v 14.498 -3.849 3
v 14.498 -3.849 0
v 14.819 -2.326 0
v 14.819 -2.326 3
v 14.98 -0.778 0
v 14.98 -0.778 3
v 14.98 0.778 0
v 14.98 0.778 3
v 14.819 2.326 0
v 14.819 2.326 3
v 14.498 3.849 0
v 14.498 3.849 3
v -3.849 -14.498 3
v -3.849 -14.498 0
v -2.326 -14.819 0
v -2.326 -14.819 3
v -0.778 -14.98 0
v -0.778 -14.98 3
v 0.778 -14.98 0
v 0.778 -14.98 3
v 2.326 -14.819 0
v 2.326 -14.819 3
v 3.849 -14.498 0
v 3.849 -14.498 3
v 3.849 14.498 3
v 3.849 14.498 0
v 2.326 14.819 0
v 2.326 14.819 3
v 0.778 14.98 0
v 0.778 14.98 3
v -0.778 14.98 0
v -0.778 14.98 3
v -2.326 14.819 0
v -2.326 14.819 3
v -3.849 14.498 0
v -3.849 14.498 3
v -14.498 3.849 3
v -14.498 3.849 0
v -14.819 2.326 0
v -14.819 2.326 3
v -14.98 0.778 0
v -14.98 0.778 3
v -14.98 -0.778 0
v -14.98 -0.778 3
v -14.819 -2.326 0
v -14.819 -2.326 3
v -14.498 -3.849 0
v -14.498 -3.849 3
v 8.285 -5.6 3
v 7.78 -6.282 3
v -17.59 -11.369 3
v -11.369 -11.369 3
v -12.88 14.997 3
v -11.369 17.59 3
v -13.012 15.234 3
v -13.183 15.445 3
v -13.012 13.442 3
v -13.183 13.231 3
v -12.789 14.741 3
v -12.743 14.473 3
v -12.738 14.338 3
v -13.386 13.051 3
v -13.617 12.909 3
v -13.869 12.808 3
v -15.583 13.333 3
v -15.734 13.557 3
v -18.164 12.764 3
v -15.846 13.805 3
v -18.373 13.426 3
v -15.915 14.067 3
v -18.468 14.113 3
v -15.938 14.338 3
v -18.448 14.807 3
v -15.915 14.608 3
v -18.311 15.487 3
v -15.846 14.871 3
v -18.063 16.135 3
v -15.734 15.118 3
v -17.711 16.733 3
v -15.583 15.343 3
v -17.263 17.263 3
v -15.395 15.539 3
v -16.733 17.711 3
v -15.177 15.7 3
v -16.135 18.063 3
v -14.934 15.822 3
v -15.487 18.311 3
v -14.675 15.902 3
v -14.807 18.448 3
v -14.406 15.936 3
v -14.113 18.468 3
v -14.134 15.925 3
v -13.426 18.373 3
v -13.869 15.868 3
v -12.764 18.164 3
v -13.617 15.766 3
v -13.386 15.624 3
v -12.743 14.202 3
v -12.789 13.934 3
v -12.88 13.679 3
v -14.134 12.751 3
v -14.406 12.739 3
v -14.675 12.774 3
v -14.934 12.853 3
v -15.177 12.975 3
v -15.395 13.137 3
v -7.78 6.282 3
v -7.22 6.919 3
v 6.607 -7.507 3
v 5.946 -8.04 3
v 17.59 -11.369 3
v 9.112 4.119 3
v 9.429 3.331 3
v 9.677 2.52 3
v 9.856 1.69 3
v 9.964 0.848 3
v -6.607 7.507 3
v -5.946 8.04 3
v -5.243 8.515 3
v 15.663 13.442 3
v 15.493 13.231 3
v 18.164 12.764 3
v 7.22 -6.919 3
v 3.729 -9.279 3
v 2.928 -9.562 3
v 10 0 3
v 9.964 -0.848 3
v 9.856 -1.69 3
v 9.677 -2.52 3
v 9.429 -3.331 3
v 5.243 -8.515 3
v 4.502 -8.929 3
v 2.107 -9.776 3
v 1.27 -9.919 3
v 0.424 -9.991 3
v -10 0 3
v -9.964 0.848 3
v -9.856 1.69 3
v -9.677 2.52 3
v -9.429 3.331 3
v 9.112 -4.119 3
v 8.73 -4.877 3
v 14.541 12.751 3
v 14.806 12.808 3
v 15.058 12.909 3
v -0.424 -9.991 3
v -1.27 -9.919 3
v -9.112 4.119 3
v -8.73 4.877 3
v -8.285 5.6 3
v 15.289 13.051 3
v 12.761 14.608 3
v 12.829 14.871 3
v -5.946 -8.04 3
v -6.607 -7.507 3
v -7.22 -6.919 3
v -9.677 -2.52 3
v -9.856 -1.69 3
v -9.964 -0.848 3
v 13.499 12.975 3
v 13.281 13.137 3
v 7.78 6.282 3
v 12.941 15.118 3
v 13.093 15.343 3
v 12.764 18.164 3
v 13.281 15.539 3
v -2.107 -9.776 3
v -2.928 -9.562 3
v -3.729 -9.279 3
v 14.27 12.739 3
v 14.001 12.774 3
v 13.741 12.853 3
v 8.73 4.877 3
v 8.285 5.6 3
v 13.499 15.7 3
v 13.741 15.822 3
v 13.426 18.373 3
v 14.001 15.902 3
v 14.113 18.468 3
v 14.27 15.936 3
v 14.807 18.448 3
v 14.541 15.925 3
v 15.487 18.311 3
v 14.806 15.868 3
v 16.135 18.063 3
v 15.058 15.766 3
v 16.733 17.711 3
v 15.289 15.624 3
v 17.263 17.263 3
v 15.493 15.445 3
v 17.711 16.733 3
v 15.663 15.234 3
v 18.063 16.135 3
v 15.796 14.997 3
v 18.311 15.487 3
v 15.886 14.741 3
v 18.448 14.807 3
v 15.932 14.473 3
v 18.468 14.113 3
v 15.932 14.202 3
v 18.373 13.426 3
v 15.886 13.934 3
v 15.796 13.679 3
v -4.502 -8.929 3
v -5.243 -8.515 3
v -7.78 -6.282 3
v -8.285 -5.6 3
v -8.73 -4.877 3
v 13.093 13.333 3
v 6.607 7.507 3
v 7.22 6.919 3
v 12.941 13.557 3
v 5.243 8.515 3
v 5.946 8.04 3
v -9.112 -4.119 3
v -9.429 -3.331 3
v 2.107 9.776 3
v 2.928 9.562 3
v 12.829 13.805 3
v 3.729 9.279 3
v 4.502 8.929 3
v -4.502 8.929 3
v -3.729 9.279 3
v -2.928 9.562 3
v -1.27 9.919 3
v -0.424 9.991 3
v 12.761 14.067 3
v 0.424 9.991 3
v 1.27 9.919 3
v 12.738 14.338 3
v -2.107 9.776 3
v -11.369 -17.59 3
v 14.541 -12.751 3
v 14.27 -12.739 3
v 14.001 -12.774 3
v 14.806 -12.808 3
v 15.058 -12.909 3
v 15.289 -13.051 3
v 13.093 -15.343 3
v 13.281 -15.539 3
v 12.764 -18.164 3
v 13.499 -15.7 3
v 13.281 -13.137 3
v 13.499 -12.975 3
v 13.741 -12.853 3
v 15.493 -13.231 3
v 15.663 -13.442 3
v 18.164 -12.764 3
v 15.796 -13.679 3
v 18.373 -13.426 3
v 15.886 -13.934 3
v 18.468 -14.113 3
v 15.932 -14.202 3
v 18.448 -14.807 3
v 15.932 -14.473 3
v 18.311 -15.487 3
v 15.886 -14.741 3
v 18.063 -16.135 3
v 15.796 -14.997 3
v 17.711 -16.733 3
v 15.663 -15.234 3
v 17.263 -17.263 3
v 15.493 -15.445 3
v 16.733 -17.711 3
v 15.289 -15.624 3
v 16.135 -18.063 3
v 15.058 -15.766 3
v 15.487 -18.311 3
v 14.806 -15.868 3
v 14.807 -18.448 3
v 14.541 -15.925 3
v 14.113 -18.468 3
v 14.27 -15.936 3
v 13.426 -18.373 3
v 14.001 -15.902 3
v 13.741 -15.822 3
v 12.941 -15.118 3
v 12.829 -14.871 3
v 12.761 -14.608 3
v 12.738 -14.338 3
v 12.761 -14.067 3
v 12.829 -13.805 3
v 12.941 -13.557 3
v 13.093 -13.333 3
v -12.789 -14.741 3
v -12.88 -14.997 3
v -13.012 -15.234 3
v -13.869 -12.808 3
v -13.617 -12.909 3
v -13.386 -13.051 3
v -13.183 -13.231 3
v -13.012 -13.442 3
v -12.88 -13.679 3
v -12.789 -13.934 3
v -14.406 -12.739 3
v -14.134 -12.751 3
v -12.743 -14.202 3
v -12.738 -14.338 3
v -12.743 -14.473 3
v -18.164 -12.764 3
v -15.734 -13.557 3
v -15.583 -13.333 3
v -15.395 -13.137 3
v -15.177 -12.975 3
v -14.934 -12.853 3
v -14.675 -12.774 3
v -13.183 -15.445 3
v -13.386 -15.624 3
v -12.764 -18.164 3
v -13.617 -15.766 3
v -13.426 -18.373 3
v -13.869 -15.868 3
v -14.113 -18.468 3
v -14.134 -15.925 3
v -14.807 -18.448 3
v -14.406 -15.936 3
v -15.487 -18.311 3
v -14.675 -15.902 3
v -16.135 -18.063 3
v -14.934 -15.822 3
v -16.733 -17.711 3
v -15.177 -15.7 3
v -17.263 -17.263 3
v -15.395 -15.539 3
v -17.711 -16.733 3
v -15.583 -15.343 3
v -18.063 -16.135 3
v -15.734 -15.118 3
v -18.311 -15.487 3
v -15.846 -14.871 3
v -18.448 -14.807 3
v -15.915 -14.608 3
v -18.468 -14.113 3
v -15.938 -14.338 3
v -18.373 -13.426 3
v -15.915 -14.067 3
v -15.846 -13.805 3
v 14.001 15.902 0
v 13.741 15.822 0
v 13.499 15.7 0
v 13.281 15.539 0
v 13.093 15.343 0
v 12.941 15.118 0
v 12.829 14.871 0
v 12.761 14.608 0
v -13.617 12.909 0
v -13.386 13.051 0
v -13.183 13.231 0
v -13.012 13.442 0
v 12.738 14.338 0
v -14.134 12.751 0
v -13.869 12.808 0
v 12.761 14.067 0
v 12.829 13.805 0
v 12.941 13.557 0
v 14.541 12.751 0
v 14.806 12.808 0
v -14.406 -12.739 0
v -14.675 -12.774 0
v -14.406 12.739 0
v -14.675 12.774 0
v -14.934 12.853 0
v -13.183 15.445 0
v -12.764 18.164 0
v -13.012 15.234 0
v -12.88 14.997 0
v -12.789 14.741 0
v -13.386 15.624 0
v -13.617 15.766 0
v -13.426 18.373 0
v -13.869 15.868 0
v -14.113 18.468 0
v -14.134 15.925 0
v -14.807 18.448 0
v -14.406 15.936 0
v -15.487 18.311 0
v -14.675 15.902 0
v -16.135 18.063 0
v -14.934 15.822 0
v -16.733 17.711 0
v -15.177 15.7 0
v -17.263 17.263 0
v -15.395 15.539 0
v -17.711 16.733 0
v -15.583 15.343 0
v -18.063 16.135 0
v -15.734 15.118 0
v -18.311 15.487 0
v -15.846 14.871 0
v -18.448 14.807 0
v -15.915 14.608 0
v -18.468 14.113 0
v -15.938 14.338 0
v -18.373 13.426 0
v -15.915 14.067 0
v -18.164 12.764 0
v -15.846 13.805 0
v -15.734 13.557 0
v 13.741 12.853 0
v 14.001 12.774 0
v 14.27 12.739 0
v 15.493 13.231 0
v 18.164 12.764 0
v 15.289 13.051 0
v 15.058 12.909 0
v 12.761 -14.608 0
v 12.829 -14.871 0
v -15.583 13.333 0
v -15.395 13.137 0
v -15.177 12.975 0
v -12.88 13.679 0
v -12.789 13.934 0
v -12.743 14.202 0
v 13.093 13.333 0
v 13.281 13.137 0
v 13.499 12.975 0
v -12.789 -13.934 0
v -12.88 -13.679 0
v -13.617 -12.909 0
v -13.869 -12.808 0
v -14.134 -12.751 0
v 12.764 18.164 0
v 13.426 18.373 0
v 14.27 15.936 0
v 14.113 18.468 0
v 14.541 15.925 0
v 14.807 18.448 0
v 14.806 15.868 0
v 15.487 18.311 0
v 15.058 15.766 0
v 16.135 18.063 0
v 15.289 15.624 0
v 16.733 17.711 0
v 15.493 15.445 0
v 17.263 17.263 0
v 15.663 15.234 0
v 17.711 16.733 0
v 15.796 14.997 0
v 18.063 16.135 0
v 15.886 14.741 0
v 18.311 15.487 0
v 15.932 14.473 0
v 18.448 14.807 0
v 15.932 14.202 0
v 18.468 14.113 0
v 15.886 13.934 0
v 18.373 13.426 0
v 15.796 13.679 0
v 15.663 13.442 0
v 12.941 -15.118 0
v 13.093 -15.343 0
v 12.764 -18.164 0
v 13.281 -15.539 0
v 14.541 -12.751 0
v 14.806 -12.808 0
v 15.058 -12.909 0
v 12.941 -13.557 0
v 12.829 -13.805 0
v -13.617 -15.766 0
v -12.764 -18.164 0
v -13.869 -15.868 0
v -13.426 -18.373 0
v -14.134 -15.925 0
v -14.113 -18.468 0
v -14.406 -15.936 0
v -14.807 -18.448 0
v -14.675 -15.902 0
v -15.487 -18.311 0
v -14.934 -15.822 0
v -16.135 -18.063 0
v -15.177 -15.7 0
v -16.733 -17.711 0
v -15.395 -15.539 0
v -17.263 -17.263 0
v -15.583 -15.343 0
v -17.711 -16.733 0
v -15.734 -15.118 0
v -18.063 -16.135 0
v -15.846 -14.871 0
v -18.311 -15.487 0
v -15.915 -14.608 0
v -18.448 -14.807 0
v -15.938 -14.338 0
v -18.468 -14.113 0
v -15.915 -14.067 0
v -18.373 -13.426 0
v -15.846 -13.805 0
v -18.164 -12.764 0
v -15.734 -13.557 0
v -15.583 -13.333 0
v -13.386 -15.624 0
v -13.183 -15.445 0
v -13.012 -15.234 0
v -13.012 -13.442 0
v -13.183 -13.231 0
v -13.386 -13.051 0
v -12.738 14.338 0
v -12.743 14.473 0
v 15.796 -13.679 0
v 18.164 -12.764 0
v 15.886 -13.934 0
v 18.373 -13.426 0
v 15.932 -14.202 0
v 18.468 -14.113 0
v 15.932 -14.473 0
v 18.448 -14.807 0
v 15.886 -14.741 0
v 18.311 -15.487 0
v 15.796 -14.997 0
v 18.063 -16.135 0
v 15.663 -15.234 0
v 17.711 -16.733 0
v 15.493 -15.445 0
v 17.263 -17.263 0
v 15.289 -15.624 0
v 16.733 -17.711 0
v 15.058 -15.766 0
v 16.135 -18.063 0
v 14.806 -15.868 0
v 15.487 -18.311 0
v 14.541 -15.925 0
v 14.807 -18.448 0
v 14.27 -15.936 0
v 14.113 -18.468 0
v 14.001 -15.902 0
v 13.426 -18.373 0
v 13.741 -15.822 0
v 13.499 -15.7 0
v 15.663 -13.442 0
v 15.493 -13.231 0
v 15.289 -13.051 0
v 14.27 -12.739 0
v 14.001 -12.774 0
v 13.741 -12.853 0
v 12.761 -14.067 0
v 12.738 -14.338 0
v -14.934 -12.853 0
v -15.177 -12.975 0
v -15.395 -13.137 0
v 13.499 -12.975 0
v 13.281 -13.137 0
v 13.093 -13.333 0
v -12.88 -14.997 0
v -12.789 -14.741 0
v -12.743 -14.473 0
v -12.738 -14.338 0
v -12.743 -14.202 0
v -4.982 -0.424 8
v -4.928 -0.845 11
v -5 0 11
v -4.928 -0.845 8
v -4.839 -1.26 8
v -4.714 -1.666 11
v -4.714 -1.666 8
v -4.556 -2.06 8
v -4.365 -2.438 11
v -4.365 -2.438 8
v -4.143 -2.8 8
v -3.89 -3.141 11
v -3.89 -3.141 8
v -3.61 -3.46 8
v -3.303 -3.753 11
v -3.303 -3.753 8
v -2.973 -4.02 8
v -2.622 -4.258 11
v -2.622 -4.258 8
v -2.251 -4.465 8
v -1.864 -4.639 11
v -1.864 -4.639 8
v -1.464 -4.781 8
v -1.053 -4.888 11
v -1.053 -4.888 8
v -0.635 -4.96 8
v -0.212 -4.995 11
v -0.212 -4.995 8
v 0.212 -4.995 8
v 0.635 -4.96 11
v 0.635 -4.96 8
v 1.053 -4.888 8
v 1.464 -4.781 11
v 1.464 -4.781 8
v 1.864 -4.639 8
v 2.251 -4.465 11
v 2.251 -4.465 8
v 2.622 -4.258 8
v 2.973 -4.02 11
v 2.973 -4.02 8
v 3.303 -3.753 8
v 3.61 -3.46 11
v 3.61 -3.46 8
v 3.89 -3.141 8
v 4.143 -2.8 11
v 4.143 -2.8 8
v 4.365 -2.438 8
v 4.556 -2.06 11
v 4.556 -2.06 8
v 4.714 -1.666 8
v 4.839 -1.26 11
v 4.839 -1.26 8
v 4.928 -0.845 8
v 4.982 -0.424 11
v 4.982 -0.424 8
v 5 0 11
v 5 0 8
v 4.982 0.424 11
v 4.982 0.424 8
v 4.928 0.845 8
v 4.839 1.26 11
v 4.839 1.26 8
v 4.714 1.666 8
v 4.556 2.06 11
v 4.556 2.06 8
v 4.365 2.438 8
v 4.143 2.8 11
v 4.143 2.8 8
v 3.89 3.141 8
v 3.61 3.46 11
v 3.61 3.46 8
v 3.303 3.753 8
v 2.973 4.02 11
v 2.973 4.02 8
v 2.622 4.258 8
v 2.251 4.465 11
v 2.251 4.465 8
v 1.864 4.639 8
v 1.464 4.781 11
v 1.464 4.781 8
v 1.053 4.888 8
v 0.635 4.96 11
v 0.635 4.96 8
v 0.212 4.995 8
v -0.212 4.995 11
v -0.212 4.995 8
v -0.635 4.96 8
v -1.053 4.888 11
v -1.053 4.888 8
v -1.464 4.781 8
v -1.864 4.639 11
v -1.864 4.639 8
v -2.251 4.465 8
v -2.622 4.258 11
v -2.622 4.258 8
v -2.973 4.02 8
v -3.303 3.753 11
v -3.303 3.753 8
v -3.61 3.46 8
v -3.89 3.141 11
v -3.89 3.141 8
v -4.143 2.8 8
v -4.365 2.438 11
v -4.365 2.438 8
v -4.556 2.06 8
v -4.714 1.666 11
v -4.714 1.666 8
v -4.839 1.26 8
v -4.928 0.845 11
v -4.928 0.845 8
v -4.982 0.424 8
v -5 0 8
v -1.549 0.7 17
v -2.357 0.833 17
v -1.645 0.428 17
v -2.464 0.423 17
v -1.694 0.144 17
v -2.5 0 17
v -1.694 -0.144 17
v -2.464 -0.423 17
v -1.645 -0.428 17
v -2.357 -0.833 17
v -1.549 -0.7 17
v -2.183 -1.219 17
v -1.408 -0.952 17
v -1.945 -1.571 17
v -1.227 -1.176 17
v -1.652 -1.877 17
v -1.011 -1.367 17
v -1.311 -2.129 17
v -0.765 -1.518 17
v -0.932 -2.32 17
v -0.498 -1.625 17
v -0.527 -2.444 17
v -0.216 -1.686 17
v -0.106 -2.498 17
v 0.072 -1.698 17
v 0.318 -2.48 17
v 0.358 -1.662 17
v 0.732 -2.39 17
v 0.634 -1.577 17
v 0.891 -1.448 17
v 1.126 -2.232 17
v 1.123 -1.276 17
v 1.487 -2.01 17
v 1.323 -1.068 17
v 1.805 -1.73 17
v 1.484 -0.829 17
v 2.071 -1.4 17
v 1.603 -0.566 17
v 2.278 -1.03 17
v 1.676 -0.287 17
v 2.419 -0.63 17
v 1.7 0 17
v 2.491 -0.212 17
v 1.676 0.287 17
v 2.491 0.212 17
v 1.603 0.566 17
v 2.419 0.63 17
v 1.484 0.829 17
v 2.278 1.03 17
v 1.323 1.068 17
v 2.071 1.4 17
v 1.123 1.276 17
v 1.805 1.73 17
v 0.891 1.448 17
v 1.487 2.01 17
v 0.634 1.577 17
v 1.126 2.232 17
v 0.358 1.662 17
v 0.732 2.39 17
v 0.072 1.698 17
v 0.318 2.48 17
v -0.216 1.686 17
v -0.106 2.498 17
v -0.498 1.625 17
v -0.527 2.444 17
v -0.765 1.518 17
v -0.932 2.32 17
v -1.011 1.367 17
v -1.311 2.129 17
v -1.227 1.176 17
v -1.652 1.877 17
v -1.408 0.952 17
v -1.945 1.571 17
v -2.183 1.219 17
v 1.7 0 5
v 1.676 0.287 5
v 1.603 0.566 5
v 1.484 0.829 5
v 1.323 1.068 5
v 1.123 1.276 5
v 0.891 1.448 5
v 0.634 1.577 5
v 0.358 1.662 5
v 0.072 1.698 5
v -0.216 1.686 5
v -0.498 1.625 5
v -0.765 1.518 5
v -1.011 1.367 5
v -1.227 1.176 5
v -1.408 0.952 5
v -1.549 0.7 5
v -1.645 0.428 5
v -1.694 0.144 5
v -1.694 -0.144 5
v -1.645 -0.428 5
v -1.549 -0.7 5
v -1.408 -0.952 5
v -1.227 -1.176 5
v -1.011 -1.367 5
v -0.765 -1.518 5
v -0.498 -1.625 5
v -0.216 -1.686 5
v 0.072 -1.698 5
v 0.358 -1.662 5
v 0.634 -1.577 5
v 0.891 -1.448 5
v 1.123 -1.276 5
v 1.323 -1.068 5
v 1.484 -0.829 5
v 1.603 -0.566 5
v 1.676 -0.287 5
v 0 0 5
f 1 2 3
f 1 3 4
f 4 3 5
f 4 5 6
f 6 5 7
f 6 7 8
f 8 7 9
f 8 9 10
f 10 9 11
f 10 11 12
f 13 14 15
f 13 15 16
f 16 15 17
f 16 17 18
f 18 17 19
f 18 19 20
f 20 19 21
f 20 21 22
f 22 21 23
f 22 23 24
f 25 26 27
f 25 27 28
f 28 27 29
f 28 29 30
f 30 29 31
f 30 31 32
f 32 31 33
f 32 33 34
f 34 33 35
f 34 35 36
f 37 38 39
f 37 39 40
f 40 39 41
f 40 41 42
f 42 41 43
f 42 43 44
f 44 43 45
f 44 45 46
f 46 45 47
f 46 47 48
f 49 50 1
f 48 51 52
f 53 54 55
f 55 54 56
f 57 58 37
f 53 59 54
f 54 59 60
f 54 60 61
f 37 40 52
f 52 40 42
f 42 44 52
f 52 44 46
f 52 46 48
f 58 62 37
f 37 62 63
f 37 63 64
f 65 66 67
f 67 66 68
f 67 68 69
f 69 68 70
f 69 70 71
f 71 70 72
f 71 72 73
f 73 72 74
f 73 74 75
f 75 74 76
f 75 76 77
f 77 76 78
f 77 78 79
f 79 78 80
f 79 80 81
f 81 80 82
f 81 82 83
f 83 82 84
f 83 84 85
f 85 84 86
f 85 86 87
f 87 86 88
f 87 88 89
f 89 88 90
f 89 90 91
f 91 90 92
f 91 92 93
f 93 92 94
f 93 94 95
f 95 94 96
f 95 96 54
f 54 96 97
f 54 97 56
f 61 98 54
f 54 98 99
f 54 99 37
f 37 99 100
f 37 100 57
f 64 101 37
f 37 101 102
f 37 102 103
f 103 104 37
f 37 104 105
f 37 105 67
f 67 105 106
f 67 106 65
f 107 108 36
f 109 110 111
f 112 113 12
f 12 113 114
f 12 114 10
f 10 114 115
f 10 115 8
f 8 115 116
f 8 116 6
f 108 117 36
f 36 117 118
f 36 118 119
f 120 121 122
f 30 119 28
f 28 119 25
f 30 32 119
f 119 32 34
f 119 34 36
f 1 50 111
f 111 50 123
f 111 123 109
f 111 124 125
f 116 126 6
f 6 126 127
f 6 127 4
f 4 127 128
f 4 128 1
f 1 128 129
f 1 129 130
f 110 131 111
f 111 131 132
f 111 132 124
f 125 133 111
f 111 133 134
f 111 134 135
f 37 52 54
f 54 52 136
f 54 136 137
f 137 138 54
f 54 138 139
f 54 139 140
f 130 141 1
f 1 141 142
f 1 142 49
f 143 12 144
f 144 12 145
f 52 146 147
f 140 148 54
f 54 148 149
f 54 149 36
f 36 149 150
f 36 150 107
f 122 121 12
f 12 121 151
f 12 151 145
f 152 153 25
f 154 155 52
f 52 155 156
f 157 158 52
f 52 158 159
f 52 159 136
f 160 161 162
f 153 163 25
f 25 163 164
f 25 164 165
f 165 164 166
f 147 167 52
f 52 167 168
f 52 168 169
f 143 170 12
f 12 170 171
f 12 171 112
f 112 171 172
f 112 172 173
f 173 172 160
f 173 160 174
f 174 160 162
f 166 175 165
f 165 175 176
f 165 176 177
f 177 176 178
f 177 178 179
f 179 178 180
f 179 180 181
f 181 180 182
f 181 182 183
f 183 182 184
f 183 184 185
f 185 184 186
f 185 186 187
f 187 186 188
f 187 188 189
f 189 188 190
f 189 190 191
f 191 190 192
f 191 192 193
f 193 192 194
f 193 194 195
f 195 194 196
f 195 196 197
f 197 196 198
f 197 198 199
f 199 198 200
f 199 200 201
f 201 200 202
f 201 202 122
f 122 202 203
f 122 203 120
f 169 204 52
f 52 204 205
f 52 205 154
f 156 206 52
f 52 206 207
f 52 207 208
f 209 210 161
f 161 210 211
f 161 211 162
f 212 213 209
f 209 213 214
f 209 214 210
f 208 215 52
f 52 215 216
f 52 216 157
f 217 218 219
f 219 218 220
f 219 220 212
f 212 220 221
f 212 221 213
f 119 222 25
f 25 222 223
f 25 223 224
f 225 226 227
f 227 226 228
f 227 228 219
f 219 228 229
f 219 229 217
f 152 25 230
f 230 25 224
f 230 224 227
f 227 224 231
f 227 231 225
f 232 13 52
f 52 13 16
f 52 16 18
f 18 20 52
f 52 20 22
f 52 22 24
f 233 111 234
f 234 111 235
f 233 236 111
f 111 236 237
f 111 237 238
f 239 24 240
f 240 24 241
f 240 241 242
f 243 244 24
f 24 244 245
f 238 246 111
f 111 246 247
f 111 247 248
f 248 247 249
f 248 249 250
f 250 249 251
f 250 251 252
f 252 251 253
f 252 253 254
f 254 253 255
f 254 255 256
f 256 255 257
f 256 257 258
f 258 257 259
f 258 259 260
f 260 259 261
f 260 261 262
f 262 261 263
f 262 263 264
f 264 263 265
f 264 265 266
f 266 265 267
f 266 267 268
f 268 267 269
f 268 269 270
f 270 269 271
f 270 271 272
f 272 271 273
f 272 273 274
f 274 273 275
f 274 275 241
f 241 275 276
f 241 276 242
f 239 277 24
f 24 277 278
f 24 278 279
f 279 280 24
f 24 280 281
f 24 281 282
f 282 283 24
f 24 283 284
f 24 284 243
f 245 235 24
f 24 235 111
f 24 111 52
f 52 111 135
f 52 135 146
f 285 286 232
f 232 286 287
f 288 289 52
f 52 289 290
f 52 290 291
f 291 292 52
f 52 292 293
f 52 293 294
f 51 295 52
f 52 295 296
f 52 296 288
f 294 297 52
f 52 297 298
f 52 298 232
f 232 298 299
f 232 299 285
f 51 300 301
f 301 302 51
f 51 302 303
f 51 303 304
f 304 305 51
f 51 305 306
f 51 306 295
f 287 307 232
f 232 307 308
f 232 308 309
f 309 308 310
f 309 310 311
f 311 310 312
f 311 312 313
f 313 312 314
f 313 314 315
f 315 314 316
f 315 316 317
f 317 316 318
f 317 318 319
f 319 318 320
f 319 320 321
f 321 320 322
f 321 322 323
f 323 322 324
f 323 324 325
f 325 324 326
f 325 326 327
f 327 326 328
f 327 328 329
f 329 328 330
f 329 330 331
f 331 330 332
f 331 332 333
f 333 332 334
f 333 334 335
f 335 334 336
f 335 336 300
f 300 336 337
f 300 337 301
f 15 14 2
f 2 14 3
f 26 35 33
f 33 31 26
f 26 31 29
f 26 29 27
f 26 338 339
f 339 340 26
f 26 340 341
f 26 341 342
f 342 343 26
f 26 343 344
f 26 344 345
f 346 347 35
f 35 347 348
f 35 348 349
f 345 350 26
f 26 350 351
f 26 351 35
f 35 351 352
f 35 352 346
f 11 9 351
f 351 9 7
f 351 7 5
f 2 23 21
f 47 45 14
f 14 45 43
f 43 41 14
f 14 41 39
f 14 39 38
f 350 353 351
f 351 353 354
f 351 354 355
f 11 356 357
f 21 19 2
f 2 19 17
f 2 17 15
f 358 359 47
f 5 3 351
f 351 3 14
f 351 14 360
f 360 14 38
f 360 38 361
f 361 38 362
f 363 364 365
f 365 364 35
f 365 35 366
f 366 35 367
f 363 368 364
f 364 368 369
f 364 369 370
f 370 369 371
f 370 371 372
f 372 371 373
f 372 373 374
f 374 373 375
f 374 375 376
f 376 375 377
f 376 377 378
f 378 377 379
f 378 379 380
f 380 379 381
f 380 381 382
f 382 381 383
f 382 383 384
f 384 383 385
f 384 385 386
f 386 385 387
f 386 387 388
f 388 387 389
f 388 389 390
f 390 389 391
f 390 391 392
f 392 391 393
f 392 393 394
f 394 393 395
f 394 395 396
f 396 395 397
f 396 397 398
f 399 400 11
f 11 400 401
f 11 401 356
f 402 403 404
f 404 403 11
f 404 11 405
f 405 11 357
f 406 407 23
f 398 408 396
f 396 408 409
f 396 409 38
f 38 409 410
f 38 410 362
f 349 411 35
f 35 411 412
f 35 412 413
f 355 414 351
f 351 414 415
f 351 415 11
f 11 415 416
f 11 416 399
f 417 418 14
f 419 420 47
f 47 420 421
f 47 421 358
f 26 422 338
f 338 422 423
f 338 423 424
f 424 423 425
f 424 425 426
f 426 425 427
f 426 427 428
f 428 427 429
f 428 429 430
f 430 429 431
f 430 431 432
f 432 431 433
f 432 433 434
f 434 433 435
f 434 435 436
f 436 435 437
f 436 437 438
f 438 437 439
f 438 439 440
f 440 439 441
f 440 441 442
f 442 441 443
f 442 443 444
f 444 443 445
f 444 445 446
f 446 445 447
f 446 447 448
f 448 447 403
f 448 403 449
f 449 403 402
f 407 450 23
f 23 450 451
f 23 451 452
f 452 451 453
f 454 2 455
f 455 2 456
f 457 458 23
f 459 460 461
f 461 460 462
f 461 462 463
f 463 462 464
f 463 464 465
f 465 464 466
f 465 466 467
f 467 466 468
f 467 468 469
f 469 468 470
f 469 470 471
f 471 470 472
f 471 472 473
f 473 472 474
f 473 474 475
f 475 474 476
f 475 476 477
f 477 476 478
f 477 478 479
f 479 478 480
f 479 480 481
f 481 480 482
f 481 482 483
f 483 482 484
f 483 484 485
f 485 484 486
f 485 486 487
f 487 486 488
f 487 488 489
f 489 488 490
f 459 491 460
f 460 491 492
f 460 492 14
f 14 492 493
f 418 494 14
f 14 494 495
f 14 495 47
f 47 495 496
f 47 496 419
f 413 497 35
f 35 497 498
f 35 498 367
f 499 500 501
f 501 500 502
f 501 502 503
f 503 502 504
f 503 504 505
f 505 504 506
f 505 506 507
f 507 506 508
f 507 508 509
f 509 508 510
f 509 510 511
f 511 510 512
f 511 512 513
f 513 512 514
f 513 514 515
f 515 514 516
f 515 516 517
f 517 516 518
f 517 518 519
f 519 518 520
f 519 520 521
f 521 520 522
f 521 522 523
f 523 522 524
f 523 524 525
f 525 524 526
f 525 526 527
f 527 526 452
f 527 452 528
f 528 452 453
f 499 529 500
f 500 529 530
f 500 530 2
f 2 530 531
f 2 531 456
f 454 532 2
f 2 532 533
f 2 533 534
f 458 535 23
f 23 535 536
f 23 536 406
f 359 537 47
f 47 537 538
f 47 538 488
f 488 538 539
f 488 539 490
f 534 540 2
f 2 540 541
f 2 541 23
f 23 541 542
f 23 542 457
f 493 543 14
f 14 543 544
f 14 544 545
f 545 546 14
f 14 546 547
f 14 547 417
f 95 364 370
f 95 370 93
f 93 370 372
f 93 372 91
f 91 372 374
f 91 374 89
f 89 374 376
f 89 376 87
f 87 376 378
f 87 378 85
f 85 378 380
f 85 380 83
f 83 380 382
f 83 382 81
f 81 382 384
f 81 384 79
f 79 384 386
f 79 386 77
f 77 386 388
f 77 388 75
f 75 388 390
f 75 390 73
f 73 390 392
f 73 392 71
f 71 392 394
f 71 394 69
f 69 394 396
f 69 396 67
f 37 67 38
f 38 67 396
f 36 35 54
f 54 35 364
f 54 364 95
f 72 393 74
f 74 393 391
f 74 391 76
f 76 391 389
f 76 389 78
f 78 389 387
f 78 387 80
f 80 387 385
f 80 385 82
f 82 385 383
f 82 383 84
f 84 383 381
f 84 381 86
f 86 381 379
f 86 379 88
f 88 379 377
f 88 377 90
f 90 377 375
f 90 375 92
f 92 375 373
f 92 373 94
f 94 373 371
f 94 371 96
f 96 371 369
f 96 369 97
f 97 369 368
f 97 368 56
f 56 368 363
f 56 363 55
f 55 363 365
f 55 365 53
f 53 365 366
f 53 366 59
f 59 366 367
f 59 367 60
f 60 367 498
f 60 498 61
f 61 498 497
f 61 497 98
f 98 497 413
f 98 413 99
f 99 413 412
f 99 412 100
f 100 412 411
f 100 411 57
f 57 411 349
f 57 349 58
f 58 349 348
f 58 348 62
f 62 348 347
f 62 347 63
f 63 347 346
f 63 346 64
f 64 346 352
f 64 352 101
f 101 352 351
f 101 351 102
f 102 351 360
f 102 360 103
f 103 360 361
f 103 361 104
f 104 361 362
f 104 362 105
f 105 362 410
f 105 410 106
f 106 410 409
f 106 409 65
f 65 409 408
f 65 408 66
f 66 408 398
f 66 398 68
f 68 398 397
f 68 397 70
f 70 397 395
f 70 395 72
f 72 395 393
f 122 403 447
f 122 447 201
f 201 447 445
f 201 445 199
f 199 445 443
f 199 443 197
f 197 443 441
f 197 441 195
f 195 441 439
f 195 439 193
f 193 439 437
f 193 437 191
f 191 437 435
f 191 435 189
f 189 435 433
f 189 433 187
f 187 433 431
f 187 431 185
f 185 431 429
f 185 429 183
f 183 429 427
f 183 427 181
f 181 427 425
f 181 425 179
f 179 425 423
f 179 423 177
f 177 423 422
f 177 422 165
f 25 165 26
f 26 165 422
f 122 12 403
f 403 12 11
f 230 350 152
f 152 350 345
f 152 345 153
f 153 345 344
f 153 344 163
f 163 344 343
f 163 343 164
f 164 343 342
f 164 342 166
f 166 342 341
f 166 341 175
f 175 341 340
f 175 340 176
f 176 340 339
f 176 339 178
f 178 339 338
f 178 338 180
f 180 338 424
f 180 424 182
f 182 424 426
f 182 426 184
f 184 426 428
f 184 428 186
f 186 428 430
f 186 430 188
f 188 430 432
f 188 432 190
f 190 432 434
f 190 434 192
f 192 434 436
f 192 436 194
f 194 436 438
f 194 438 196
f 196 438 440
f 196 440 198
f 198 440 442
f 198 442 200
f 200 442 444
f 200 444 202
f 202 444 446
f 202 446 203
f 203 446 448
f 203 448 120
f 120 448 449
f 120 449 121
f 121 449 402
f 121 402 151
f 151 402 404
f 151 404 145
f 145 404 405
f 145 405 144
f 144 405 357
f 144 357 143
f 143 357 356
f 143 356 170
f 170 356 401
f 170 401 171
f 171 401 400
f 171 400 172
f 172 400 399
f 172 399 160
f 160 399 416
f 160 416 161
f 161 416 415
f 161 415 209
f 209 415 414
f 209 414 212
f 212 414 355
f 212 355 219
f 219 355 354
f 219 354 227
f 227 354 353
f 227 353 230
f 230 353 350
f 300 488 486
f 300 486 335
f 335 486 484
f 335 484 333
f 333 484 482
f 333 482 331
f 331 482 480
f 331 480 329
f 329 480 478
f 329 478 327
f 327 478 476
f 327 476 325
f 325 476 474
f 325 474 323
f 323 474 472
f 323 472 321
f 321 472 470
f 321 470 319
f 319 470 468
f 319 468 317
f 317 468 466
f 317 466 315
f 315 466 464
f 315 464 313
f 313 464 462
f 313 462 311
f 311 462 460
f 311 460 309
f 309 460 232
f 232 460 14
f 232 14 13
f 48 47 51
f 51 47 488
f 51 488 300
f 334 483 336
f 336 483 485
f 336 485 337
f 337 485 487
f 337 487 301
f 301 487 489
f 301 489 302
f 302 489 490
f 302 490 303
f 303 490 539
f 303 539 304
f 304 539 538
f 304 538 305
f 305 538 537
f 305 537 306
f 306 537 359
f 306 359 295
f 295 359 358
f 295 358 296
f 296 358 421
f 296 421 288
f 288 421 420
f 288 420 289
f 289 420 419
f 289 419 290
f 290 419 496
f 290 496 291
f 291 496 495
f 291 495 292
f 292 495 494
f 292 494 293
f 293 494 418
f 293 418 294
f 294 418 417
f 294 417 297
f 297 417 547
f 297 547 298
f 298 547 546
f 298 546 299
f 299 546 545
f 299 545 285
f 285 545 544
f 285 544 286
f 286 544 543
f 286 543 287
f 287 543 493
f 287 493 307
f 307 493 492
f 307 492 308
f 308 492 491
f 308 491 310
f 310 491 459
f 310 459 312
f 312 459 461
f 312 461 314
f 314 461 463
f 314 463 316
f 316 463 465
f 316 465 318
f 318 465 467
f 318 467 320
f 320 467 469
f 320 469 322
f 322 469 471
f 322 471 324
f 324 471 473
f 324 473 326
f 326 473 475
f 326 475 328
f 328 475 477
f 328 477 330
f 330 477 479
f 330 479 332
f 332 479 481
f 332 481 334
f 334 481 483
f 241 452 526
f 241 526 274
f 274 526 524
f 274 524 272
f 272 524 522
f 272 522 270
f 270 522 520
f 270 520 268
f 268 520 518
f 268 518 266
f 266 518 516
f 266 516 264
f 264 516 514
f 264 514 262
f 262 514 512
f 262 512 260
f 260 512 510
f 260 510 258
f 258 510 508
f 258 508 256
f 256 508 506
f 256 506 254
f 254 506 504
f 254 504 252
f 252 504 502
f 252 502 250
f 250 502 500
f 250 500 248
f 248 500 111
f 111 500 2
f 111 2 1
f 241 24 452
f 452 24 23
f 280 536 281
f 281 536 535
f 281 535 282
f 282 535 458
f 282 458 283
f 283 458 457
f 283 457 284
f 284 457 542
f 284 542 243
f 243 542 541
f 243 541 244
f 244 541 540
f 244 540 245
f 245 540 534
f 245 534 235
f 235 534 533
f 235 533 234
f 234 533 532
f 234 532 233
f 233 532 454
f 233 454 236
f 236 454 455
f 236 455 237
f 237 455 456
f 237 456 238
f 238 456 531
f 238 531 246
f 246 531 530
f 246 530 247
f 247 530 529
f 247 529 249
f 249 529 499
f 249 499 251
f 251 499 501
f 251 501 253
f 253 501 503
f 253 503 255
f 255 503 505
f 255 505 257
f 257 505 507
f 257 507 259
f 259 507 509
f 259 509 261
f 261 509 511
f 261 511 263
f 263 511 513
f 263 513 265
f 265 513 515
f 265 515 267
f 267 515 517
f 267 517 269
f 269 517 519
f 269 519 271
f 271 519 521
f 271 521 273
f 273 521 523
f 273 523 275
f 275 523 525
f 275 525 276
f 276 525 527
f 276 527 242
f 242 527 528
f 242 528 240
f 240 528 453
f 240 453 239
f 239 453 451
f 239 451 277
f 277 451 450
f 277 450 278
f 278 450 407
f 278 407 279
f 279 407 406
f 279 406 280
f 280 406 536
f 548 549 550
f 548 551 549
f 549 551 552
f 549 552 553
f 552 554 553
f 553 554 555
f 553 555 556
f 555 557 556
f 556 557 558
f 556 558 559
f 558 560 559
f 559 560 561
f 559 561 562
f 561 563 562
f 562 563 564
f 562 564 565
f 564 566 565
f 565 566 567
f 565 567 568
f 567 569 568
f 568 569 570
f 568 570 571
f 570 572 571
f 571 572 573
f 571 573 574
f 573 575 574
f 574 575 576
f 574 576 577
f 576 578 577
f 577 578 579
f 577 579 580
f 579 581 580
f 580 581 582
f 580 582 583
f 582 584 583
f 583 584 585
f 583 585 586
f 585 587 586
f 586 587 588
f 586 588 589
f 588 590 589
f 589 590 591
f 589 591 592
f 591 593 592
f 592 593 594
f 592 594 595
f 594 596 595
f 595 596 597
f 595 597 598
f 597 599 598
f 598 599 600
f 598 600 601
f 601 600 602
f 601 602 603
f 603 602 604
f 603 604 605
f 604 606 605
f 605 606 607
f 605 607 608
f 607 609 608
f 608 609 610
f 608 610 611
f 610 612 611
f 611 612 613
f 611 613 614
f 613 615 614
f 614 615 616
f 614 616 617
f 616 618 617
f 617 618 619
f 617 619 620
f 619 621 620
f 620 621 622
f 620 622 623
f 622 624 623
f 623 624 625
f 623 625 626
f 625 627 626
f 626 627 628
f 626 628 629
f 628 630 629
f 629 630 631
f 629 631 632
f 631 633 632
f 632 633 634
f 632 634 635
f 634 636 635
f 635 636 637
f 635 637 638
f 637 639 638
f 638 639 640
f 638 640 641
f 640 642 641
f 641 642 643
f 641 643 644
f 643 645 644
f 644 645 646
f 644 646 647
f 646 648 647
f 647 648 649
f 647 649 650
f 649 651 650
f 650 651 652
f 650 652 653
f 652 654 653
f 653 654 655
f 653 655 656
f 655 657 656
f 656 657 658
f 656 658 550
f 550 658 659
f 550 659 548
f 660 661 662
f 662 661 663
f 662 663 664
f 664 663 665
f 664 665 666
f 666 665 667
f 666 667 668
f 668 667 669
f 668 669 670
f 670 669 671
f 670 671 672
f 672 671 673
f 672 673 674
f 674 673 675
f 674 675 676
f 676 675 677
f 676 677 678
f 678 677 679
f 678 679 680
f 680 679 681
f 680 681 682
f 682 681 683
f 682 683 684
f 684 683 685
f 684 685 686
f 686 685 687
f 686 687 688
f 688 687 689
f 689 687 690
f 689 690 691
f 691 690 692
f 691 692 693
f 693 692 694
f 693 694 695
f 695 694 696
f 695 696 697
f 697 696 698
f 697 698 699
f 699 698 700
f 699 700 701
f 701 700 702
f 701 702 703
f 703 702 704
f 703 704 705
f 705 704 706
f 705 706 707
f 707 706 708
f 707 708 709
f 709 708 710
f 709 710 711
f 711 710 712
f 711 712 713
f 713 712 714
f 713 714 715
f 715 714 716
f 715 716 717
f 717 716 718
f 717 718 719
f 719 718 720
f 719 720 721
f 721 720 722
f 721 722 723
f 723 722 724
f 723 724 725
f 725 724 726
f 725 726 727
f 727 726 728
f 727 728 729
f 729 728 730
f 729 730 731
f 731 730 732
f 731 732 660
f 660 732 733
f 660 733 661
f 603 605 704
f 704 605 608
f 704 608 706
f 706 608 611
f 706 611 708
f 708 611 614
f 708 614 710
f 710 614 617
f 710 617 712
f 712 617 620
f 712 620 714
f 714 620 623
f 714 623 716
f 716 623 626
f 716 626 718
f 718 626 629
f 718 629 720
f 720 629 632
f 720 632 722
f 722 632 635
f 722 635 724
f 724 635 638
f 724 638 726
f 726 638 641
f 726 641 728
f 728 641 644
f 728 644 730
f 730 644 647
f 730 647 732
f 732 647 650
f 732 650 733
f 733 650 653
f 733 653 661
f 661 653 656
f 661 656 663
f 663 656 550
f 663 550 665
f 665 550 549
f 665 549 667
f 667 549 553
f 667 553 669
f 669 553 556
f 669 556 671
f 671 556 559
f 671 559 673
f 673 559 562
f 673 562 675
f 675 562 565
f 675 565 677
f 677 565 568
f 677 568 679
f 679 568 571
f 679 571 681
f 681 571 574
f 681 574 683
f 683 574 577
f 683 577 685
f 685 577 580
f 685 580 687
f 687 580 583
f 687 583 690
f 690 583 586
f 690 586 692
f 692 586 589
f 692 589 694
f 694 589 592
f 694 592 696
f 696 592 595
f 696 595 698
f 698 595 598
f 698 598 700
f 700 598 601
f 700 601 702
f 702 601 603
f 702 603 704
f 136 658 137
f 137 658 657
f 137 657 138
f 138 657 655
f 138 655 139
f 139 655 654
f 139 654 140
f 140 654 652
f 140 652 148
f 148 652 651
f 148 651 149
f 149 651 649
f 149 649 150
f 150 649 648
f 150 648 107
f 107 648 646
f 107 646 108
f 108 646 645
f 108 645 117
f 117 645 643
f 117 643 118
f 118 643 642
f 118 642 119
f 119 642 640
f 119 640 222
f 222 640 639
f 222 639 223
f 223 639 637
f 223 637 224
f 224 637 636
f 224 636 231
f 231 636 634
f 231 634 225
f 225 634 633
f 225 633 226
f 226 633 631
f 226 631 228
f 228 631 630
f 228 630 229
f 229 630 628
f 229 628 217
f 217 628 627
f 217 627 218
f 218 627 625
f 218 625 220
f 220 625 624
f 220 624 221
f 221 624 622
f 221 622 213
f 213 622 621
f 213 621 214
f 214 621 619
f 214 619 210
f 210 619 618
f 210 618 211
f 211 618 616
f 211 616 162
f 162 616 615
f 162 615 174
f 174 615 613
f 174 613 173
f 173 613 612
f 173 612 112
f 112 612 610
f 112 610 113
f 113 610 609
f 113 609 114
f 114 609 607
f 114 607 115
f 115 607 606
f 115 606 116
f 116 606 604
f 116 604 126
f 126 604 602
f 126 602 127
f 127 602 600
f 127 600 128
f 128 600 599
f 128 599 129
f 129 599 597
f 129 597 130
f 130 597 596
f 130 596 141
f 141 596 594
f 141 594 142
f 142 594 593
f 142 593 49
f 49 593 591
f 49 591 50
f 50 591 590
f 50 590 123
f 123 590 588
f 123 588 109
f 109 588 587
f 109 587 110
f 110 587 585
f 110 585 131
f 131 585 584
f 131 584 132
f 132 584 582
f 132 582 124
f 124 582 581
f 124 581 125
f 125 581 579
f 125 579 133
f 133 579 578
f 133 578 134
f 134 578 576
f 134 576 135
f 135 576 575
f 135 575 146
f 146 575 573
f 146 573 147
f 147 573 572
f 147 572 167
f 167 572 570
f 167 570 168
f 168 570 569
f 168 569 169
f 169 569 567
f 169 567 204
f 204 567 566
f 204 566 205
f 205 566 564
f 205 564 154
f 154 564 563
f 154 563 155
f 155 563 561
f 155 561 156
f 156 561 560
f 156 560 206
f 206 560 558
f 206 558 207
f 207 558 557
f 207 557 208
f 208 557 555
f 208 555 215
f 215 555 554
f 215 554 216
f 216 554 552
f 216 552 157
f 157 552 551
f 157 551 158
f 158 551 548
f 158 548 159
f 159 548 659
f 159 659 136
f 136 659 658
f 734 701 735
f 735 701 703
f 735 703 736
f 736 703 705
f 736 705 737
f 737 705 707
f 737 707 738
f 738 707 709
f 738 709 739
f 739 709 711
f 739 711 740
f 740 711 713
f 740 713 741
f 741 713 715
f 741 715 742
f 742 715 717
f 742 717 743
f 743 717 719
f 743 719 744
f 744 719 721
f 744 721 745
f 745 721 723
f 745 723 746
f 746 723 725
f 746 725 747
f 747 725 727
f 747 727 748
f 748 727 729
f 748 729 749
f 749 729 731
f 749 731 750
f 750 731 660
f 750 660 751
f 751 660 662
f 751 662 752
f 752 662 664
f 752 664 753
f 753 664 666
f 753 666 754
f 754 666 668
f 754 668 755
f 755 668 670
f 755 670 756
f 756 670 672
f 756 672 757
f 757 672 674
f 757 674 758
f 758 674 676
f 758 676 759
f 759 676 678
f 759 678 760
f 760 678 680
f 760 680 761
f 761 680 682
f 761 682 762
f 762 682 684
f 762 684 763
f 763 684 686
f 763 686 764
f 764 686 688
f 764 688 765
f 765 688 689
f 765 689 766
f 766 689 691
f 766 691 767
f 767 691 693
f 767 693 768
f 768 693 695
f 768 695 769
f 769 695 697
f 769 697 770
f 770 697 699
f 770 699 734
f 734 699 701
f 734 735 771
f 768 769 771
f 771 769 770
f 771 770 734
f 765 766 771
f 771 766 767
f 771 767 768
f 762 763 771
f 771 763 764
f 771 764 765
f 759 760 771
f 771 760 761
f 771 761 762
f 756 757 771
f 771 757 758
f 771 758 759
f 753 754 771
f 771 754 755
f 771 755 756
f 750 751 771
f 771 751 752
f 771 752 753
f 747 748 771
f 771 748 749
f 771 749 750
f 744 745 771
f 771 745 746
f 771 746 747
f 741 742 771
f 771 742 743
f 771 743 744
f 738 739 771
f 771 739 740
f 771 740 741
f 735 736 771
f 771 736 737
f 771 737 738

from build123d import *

# Parameters (mm, degrees)
SKETCH1_R               = 15
BOSS_EXTRUDE1_DEPTH     = 3
BOSS_EXTRUDE2_START     = -1.5
SKETCH2_R               = 1.6
BOSS_EXTRUDE2_DEPTH     = 1.5
MIRROR2_START           = -1.5
MIRROR2_COPY_1_SKETCH_R = 1.6
MIRROR2_COPY_1_DEPTH    = 1.5
SKETCH3_R               = 5
BOSS_EXTRUDE3_DEPTH     = 8
CHAMFER1_SIZE           = 5
SKETCH5_R               = 1.7
CUT_EXTRUDE1_DEPTH      = 12


with BuildPart() as part:
    # Sketch1 → Boss-Extrude1 (new body)
    with BuildSketch(Plane.XY):
        Circle(SKETCH1_R)
    extrude(amount=BOSS_EXTRUDE1_DEPTH)

    # Sketch2 → Boss-Extrude2 (add, symmetric)
    with BuildSketch(Plane.XY.offset(3).offset(BOSS_EXTRUDE2_START)):
        with BuildLine():
            Line((-18.163571809, 12.764485711), (-14.497712513, 3.849198865))
            ThreePointArc((-14.497712513, 3.849198865), (-10.606601718, 10.606601718), (-3.849198865, 14.497712513))
            Line((-3.849198865, 14.497712513), (-12.764485711, 18.163571809))
            ThreePointArc((-12.764485711, 18.163571809), (-17.262762767, 17.262762767), (-18.163571809, 12.764485711))
        make_face()
        with Locations((-14.33765637, 14.33765637)):
            Circle(SKETCH2_R, mode=Mode.SUBTRACT)
    boss_extrude2 = extrude(amount=BOSS_EXTRUDE2_DEPTH, both=True)

    # Mirror1: Boss-Extrude2 across plane
    add(boss_extrude2.mirror(Plane(origin=(0, 0, 0), x_dir=(0, 0, 1), z_dir=(1, 0, 0))))

    # Mirror2: Boss-Extrude2 across plane
    add(boss_extrude2.mirror(Plane.ZX))

    # Mirror2 copy 1 sketch → Mirror2 copy 1 (add, symmetric)
    with BuildSketch(Plane(origin=(0, 0, 3), x_dir=(-1, 0, 0), z_dir=(0, 0, 1)).offset(MIRROR2_START)):
        with BuildLine():
            Line((-18.163571809, 12.764485711), (-14.497712513, 3.849198865))
            ThreePointArc((-14.497712513, 3.849198865), (-10.606601718, 10.606601718), (-3.849198865, 14.497712513))
            Line((-3.849198865, 14.497712513), (-12.764485711, 18.163571809))
            ThreePointArc((-12.764485711, 18.163571809), (-17.262762767, 17.262762767), (-18.163571809, 12.764485711))
        make_face()
        with Locations((-14.33765637, 14.33765637)):
            Circle(MIRROR2_COPY_1_SKETCH_R, mode=Mode.SUBTRACT)
    extrude(amount=MIRROR2_COPY_1_DEPTH, both=True)

    # Sketch3 → Boss-Extrude3 (add)
    with BuildSketch(Plane.XY.offset(3)):
        Circle(SKETCH3_R)
    extrude(amount=BOSS_EXTRUDE3_DEPTH)

    # Sketch4 → Revolve1 (revolve)
    with BuildSketch(Plane(origin=(0, 0, 0), x_dir=(1, 0, 0), z_dir=(0, 1, 0))):
        Polygon((0, -11), (-5, -11), (-2.5, -17), (0, -17), align=None)
    revolve(axis=Axis((0, 0, 11), (0, 0, 1)))

    # Chamfer1
    chamfer1_edges = [part.edges().sort_by_distance(p)[0] for p in [
        (-5, 0, 3),
    ]]
    chamfer(chamfer1_edges, length=CHAMFER1_SIZE)

    # Sketch5 → Cut-Extrude1 (cut)
    with BuildSketch(Plane.XY.offset(17)):
        Circle(SKETCH5_R)
    extrude(amount=-CUT_EXTRUDE1_DEPTH, mode=Mode.SUBTRACT)


solid = part.part
